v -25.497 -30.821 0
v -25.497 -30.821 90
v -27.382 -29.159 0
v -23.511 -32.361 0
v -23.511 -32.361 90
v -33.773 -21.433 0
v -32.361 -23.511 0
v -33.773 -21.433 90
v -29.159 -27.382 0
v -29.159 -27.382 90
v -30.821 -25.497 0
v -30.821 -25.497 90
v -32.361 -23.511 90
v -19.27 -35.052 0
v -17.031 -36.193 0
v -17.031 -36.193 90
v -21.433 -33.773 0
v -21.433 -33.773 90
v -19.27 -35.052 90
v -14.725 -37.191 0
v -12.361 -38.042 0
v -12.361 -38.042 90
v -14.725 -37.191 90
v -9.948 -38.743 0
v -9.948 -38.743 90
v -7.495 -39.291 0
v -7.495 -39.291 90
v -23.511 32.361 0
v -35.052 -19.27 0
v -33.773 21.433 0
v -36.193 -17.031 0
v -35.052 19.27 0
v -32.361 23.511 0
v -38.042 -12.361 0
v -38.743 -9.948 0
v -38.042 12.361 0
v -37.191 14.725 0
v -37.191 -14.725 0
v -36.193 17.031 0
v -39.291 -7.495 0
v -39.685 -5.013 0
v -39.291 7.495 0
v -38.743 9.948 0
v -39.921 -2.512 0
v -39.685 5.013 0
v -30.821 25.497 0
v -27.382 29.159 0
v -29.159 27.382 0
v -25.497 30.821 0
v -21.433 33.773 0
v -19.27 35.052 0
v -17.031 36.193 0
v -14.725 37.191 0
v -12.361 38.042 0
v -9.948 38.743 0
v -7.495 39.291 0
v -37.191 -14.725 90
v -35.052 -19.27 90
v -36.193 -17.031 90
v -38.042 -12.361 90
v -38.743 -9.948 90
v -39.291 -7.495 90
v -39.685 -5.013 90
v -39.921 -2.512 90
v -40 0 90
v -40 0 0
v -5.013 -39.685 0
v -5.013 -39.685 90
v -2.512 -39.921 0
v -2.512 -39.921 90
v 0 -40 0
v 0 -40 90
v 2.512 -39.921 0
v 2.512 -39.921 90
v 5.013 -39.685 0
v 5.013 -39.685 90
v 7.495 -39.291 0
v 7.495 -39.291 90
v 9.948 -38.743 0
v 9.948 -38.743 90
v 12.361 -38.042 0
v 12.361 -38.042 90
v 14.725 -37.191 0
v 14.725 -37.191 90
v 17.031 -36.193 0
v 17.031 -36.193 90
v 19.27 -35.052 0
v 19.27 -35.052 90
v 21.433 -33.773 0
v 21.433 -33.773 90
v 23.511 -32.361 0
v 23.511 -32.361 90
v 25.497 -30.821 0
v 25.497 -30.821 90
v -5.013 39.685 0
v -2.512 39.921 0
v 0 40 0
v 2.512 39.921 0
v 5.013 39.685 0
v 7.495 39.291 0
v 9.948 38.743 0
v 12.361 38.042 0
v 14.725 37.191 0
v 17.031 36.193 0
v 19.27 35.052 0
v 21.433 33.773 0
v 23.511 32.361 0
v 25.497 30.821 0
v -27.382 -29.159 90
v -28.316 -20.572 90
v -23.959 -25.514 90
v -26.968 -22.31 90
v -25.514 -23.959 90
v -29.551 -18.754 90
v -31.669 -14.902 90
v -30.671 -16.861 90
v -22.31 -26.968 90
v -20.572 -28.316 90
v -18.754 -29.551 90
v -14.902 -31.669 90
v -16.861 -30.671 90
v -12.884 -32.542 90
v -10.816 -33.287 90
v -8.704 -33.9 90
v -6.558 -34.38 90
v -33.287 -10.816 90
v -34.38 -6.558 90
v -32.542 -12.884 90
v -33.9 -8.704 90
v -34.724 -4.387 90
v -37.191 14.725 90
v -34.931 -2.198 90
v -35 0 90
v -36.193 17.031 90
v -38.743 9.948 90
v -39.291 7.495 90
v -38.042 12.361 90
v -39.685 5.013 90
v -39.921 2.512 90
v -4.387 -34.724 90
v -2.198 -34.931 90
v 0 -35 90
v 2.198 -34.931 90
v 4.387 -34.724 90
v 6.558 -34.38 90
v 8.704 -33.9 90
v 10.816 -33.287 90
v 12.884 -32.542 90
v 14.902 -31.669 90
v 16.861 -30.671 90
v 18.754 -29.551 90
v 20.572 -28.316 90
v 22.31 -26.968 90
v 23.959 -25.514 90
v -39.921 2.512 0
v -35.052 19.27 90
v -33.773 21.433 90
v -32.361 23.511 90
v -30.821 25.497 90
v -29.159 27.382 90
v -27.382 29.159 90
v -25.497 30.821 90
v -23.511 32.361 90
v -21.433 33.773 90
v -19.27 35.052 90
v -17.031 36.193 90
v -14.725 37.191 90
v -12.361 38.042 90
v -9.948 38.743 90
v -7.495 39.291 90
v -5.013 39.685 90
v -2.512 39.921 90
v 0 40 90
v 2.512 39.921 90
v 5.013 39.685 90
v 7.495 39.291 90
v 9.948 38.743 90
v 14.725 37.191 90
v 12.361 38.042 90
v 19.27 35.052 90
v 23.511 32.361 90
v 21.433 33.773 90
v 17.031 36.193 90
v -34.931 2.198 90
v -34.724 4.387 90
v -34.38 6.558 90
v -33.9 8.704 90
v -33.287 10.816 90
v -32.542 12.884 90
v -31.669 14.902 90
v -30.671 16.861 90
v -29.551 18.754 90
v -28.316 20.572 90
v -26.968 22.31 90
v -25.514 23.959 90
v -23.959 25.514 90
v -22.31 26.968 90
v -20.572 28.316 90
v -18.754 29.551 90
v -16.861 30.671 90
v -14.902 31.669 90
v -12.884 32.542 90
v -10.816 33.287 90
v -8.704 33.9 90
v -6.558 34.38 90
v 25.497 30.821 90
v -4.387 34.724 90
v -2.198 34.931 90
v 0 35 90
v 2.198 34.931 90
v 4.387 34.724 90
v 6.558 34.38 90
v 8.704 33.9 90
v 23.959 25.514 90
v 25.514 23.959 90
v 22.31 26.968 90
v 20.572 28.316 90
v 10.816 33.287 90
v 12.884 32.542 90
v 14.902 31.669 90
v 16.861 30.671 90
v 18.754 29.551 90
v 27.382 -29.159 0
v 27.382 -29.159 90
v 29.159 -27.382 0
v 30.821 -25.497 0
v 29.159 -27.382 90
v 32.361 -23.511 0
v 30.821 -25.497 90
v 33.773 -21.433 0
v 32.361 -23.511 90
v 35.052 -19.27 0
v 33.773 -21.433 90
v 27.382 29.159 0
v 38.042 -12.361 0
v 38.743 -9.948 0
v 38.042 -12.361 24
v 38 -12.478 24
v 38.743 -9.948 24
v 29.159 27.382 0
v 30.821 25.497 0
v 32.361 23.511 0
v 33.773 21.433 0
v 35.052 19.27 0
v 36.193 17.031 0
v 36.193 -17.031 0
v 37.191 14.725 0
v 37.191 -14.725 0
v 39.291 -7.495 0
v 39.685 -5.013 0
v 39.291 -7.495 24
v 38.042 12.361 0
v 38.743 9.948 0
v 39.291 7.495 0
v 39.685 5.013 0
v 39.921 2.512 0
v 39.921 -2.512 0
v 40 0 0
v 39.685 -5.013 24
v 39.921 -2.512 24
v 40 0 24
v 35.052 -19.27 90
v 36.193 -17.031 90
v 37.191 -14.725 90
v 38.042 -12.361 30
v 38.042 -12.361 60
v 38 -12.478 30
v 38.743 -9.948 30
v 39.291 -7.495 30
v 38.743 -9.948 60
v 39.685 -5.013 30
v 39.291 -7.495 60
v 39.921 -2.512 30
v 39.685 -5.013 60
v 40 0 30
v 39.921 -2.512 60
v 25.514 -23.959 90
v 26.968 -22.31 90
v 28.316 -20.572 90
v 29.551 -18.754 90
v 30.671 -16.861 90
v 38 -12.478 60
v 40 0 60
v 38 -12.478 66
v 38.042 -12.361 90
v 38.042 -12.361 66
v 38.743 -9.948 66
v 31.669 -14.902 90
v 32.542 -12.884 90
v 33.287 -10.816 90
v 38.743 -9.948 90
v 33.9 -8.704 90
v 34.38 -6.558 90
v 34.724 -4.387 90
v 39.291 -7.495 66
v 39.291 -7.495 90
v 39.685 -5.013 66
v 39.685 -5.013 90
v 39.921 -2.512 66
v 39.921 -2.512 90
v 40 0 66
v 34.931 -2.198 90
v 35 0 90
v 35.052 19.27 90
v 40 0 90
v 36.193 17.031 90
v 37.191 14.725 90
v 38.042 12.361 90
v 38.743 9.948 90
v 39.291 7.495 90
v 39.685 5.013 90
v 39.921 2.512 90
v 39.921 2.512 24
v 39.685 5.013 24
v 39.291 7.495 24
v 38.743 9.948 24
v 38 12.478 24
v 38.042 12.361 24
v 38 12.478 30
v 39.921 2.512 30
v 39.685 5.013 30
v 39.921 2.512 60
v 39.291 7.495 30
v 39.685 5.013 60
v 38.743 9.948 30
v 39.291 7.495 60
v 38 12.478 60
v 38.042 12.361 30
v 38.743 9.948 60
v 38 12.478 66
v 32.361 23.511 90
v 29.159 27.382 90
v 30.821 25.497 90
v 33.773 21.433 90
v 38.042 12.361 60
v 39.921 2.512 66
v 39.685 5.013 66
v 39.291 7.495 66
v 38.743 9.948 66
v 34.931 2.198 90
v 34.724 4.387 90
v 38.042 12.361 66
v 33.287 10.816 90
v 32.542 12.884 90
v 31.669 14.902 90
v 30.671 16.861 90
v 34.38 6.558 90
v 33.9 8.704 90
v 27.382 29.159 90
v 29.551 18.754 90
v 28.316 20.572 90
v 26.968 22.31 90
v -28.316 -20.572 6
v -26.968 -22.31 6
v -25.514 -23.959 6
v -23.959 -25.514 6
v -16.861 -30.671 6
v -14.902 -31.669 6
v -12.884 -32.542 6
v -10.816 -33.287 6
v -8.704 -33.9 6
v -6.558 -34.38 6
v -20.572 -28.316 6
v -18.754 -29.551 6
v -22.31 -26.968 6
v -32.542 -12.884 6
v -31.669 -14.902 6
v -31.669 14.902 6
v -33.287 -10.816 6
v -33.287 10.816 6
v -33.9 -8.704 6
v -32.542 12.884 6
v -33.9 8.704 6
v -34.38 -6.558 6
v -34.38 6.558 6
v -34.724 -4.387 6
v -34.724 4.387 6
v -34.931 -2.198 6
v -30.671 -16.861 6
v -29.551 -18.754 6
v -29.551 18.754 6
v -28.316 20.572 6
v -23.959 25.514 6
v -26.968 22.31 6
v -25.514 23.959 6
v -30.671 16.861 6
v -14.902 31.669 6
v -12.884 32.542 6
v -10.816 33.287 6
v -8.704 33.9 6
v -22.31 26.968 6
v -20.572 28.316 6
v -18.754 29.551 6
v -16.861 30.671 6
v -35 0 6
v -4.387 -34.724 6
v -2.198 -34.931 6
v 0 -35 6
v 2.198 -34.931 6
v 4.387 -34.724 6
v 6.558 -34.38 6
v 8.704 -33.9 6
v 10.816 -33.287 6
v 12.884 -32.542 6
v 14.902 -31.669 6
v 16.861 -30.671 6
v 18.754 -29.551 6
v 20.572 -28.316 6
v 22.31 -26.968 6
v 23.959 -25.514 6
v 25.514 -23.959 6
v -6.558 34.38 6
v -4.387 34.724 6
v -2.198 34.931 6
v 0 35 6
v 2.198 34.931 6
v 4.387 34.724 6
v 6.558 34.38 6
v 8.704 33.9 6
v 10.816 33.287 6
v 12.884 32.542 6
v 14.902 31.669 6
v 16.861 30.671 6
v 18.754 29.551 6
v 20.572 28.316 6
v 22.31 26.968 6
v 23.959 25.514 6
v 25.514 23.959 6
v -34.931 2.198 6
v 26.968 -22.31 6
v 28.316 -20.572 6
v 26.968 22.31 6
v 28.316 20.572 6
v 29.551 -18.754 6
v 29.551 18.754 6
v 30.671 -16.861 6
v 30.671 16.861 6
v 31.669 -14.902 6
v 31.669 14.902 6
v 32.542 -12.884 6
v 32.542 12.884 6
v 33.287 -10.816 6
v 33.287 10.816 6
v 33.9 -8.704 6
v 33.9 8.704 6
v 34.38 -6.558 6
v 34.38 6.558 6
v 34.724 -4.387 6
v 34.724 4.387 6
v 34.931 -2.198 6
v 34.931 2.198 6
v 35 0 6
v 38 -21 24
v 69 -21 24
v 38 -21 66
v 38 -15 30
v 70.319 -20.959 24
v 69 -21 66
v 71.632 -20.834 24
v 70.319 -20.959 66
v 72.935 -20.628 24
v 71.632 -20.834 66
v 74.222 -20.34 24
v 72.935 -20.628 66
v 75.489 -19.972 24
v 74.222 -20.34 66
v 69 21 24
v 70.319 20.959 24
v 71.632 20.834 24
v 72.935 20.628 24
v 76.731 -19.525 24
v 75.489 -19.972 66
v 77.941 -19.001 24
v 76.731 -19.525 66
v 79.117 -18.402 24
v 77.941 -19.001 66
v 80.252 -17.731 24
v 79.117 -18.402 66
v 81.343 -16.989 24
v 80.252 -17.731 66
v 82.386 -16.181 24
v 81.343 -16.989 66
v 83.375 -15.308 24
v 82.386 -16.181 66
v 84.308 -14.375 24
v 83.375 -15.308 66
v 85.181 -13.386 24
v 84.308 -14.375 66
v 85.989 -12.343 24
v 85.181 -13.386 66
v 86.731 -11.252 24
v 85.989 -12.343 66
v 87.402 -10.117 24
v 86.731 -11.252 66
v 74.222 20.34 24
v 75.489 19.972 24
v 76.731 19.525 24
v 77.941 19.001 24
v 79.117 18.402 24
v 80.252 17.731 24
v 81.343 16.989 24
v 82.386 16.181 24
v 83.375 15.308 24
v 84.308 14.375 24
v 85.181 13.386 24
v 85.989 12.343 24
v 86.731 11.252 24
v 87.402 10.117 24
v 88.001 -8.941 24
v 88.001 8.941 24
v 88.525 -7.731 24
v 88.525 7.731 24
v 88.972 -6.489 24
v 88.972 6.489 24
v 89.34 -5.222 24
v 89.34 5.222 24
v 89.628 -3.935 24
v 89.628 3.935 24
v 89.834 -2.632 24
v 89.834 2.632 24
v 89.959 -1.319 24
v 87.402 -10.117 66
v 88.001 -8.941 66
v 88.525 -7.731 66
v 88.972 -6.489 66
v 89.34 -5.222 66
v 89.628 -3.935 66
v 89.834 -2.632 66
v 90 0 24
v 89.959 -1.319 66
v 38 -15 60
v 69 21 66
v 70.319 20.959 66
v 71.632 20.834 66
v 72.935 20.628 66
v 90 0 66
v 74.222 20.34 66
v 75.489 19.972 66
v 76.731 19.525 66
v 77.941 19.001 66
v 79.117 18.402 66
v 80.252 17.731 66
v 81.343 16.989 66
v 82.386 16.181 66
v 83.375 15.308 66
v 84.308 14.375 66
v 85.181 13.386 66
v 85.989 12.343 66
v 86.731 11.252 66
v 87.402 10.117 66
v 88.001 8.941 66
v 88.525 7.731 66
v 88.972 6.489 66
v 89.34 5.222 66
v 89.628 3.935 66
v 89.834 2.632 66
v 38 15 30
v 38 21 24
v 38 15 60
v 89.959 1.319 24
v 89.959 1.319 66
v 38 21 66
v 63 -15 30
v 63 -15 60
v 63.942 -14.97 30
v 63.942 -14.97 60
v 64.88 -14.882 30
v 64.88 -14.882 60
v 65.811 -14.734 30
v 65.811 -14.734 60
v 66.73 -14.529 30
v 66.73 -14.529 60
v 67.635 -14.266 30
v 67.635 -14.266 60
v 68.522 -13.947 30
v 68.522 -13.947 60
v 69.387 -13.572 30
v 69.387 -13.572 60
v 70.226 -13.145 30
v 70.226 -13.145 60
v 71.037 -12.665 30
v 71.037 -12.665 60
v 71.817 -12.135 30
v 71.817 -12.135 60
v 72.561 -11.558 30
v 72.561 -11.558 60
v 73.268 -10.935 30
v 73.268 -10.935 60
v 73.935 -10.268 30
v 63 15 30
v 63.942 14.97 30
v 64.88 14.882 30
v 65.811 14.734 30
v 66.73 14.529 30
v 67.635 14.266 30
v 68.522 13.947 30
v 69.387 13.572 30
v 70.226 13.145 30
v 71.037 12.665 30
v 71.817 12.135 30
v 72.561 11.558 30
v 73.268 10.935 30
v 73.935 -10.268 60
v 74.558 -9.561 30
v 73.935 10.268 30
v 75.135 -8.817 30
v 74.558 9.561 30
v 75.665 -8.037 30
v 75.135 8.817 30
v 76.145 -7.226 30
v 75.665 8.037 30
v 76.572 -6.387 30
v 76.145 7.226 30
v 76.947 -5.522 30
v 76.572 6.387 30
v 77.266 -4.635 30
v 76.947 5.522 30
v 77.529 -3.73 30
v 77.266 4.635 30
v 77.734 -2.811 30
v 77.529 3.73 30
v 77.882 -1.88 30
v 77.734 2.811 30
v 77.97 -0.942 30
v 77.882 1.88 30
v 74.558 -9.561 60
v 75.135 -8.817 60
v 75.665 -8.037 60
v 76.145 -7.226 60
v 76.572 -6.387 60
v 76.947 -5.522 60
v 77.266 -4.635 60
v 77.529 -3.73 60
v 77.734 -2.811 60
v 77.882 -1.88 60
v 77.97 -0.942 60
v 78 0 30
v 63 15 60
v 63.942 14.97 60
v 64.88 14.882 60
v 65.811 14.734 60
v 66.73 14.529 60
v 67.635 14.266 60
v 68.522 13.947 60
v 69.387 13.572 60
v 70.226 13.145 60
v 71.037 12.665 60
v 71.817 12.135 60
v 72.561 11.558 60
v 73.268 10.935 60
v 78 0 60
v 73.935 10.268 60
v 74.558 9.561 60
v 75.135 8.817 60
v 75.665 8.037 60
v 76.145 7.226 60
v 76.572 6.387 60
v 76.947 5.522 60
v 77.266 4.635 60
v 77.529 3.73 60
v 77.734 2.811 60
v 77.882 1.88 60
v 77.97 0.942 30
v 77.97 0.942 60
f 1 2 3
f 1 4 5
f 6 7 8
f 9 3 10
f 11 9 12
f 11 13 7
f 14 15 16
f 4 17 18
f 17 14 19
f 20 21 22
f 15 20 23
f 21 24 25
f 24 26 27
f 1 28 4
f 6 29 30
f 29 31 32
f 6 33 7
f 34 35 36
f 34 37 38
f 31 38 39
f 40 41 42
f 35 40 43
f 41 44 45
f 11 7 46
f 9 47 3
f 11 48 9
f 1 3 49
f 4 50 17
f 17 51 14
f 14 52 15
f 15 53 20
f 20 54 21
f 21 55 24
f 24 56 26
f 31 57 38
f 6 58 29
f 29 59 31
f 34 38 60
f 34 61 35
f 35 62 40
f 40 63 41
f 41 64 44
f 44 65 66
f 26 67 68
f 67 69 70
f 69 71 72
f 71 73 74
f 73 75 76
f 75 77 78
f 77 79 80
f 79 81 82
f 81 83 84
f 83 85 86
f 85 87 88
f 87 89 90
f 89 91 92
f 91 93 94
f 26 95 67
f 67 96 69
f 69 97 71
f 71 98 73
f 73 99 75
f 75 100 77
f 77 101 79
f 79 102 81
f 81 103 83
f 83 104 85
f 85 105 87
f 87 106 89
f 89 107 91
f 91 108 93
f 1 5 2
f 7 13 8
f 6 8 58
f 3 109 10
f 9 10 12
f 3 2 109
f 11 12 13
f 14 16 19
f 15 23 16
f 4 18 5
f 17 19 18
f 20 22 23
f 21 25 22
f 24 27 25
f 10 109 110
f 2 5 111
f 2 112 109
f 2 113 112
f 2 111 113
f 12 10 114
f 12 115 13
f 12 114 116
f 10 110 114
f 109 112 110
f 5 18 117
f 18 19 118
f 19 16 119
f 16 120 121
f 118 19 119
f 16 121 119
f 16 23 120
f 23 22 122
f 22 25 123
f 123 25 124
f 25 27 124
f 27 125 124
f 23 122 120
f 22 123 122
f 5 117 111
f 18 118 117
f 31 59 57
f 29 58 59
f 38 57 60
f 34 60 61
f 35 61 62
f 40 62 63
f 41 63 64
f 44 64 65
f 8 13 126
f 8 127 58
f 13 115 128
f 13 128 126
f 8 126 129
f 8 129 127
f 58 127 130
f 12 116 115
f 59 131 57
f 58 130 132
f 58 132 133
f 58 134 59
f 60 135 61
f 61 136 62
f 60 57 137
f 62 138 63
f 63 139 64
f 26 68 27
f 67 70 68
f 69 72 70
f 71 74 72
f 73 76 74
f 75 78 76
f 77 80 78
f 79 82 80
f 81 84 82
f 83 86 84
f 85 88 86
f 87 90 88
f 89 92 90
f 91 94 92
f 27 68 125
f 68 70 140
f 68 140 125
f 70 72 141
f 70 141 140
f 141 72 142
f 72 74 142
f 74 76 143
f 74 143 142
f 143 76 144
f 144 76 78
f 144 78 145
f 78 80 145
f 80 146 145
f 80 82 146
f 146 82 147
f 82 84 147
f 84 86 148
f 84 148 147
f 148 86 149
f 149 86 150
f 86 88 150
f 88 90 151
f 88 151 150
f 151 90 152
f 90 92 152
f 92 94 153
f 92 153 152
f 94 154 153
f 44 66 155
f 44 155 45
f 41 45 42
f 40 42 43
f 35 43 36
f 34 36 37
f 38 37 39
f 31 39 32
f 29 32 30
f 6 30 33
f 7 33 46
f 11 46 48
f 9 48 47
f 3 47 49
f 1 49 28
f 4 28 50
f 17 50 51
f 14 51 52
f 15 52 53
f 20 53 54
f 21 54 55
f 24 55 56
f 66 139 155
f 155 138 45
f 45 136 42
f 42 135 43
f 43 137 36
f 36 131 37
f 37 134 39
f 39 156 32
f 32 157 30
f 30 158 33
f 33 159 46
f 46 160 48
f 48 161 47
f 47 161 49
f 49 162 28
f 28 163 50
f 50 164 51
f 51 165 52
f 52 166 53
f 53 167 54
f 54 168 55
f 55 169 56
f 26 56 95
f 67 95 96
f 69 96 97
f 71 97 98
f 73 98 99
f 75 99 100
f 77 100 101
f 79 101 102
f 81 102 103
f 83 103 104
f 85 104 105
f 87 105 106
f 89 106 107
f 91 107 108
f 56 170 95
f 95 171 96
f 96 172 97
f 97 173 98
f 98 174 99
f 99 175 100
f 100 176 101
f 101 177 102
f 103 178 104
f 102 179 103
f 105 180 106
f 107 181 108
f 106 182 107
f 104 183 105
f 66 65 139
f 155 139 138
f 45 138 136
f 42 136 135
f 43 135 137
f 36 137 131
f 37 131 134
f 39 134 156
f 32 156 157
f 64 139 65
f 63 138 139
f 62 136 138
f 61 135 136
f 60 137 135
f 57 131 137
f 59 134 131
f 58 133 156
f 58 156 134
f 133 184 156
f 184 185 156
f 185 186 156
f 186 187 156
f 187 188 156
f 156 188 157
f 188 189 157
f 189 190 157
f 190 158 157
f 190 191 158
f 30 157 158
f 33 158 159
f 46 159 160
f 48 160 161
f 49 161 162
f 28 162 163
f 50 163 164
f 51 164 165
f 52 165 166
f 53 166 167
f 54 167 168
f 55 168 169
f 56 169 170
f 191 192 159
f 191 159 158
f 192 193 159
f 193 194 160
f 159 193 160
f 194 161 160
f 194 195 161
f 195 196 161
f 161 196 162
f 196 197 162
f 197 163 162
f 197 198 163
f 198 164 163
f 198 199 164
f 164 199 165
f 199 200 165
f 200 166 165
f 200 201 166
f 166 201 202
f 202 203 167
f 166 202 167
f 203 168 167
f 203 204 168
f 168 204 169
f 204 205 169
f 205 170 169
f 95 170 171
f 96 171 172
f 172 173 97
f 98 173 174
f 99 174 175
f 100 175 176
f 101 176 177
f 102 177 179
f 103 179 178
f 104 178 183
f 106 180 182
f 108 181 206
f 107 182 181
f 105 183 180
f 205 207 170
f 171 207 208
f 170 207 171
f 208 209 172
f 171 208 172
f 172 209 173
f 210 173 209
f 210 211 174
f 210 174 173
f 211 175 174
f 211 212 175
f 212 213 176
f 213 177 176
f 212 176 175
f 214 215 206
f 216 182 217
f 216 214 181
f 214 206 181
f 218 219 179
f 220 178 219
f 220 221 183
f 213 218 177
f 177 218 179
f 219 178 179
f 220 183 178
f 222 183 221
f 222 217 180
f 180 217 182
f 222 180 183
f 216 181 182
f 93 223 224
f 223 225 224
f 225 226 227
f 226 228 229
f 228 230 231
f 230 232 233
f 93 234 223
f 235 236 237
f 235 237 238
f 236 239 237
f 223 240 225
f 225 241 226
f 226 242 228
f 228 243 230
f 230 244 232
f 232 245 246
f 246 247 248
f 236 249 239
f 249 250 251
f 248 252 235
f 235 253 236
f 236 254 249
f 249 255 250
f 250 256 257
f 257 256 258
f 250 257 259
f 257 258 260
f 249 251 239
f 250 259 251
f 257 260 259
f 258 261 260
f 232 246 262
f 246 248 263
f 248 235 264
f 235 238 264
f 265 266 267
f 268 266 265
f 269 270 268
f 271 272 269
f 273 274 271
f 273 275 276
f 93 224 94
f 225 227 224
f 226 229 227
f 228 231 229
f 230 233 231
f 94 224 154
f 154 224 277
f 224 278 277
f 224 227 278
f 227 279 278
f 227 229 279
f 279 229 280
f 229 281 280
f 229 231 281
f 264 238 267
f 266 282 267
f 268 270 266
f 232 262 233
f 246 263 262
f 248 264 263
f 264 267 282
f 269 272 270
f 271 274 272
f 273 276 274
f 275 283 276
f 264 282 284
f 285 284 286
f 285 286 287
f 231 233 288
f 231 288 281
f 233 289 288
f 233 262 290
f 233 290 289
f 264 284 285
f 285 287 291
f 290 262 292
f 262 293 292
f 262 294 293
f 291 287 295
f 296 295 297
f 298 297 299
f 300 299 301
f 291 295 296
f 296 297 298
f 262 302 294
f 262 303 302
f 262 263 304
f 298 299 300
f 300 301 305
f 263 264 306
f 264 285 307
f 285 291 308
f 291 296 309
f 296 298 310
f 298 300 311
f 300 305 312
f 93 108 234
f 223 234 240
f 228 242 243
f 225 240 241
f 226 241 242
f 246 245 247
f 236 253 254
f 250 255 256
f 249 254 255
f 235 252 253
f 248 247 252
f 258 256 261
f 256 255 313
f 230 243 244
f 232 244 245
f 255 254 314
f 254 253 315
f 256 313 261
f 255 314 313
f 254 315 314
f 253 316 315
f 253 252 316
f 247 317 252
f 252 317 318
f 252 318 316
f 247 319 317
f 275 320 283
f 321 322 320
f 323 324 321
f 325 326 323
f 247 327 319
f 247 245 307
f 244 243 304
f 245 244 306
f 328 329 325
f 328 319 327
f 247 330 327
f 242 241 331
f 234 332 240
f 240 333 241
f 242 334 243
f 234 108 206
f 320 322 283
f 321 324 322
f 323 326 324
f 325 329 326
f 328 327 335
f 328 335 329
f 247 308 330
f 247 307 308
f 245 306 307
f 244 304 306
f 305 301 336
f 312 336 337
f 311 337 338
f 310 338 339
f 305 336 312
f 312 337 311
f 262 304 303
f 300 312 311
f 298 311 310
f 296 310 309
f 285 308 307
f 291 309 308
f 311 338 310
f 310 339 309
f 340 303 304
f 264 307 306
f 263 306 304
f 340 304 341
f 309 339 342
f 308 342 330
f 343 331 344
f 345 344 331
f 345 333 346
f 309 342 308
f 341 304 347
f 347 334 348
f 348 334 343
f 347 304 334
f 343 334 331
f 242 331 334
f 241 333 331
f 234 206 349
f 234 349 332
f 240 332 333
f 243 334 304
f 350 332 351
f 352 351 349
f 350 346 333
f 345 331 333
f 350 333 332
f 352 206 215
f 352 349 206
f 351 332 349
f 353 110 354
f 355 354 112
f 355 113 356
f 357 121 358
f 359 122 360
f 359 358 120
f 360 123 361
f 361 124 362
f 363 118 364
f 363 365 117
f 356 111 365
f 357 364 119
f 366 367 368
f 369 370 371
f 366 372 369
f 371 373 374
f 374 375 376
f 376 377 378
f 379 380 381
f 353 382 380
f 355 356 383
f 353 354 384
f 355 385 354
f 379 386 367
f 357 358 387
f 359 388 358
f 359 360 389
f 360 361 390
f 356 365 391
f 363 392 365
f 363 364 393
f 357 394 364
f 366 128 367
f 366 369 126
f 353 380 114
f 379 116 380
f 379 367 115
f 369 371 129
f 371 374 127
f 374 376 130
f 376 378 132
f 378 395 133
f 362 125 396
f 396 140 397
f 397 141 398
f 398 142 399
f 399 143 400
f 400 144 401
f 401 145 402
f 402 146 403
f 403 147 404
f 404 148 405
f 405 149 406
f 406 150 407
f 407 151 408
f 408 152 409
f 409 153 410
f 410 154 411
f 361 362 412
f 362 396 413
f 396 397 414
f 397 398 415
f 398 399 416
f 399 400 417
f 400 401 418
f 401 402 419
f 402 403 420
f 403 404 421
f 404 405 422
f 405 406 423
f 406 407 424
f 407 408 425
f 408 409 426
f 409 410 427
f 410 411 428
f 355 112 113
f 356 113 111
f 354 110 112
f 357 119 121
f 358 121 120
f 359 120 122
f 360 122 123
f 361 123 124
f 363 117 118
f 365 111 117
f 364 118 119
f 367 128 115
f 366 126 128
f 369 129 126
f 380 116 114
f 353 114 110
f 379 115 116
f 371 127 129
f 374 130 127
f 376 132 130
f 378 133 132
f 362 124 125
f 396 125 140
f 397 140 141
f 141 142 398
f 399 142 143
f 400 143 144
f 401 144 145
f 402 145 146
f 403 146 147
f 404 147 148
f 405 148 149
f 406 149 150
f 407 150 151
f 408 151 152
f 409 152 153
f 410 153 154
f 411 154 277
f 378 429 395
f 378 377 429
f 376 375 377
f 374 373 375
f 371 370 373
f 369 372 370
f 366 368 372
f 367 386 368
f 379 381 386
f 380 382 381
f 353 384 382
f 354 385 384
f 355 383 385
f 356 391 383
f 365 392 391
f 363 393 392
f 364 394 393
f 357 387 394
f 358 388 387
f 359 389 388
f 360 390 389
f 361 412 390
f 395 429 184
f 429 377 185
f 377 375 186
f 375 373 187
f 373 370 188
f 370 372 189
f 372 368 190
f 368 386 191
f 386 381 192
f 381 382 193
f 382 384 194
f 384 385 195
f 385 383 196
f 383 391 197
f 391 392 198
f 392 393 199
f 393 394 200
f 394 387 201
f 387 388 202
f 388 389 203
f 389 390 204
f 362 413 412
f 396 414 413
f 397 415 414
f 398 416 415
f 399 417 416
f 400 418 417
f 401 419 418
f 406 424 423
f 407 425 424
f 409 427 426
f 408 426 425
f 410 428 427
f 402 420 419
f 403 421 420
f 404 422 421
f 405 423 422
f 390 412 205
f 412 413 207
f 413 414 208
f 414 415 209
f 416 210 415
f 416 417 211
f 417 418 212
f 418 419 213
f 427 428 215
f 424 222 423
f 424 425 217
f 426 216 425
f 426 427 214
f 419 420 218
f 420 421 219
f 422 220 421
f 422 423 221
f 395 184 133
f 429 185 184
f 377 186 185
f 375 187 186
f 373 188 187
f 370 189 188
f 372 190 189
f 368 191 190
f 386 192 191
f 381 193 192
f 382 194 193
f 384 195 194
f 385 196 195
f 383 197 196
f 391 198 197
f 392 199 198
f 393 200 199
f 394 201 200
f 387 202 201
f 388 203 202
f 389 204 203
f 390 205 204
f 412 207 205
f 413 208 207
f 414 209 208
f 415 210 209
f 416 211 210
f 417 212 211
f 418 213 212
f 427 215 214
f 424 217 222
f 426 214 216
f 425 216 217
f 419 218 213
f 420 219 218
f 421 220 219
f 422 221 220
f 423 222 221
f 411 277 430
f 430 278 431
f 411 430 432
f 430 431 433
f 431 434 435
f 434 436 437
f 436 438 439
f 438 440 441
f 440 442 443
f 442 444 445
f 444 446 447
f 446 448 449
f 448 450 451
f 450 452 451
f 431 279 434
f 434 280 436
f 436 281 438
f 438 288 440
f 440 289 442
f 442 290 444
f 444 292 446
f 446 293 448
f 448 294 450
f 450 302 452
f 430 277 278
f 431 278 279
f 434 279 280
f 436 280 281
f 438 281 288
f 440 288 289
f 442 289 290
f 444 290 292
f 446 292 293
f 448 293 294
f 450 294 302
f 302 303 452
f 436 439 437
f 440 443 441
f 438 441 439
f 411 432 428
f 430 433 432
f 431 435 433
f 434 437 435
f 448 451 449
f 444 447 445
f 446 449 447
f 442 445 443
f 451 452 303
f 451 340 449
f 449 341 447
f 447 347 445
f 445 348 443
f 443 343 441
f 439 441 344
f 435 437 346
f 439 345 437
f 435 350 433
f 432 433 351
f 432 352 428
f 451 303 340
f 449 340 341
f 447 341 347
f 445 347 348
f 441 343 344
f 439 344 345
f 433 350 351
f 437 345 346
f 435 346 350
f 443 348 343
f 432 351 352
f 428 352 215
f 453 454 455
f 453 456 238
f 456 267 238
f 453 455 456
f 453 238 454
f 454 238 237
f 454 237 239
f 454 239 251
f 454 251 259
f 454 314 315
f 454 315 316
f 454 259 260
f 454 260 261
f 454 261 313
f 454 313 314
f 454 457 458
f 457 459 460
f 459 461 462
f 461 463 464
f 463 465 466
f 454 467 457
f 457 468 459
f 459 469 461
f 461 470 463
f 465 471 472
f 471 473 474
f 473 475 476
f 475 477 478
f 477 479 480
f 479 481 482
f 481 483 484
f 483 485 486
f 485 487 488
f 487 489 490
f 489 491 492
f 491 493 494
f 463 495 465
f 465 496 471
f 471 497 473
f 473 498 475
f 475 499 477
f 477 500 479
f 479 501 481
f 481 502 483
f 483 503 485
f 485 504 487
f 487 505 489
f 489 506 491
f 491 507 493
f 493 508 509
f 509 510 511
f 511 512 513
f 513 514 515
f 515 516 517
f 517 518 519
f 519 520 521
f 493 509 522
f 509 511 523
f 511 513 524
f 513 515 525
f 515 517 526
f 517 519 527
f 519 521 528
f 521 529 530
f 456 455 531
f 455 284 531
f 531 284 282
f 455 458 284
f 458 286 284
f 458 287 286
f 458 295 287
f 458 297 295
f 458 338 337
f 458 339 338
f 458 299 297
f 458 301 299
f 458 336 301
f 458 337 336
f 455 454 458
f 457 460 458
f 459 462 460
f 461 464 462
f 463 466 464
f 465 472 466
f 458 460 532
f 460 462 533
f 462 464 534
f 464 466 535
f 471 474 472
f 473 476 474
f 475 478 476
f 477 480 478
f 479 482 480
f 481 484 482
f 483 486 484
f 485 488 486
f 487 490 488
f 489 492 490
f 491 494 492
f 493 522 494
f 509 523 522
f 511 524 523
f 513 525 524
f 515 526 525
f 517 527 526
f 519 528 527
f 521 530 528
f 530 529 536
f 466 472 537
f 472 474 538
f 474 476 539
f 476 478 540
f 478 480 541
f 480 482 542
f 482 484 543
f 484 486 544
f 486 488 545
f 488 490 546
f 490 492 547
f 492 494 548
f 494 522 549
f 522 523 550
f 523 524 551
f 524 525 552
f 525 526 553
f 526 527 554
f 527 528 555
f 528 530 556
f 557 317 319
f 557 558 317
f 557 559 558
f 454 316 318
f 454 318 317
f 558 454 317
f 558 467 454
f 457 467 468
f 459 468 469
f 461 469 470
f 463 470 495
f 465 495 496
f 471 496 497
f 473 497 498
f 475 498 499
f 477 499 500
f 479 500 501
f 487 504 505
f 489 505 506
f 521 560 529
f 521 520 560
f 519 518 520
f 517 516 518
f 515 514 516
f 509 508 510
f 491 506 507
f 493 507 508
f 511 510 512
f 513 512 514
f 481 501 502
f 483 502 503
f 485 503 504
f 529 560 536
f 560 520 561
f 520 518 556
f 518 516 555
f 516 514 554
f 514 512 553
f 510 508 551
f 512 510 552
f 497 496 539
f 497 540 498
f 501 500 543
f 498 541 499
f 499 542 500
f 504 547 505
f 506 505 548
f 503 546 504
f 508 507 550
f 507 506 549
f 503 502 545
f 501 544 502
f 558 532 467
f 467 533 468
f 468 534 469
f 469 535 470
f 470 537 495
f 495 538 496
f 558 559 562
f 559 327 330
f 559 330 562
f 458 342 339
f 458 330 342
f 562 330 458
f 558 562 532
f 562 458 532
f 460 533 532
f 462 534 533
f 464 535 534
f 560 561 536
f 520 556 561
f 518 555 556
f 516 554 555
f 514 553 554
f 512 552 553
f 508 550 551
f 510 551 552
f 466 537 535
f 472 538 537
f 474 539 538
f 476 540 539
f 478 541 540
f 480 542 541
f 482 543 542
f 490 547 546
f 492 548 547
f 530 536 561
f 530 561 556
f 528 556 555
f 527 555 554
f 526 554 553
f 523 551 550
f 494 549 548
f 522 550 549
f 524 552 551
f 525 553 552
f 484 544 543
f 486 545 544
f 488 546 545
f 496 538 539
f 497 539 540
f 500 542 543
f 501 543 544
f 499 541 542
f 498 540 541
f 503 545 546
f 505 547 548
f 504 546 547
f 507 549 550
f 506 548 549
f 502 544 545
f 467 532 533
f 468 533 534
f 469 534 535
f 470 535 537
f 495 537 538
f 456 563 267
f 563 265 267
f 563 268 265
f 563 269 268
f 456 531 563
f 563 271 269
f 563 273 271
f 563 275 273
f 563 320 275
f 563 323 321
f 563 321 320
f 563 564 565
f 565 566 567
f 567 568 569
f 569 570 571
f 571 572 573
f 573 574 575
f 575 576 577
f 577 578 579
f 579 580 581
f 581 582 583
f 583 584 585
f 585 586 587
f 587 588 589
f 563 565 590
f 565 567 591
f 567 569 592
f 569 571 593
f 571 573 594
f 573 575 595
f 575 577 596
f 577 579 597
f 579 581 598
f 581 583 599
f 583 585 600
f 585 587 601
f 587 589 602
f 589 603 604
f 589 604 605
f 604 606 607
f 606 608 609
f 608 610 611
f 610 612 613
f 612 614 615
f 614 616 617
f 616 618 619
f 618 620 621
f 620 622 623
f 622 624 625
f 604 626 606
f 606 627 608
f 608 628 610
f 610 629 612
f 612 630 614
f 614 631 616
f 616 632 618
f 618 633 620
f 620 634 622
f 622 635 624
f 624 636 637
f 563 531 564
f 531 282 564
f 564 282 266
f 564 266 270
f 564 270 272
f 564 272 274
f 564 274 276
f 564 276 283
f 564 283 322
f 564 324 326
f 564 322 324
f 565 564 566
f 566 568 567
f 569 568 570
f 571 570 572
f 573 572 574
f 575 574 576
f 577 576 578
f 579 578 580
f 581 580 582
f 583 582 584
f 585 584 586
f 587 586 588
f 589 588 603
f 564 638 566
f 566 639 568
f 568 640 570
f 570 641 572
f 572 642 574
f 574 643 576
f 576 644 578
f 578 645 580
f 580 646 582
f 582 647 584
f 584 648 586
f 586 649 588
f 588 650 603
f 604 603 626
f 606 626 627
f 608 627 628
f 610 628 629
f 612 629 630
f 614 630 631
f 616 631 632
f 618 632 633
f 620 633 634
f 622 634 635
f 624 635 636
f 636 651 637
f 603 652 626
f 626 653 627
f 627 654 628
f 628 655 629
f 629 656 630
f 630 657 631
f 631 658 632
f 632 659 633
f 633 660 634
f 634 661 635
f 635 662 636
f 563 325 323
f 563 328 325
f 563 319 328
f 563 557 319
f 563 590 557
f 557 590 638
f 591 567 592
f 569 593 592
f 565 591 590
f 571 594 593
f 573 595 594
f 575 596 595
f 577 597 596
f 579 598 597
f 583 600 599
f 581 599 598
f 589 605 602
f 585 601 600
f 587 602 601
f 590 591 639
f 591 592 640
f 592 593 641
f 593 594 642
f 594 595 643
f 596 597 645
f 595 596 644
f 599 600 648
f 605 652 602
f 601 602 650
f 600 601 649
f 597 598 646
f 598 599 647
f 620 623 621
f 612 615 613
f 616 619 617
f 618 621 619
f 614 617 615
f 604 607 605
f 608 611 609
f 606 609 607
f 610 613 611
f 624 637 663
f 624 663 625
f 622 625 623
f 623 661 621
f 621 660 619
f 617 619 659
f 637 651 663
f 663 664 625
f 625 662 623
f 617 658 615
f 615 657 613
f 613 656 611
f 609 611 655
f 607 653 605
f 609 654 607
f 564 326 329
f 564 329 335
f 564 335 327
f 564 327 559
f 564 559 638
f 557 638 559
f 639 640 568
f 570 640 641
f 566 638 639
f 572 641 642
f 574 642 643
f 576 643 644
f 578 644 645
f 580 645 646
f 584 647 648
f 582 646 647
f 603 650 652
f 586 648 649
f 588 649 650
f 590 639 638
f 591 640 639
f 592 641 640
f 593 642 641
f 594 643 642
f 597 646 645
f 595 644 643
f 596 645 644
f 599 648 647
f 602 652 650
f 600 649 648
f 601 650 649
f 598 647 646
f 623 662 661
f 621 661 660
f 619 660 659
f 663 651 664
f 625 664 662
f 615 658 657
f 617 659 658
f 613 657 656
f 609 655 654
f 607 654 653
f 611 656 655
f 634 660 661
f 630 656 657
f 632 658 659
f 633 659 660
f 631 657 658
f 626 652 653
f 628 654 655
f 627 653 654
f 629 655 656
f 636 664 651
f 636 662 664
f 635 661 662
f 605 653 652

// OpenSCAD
$fn = 100;

outer_d = 80;
inner_d = 70;
height = 90;
bottom_thk = 6;

handle_inner_h = 30;
handle_inner_w = 25;
handle_thk = 6;

module body() {
    difference() {
        cylinder(d = outer_d, h = height);
        translate([0, 0, bottom_thk])
            cylinder(d = inner_d, h = height);
    }
}

module handle() {
    // D-shape handle on +X side, centered vertically
    outer_h = handle_inner_h + 2 * handle_thk;
    outer_w = handle_inner_w + handle_thk; // straight side at body, semicircle outside
    
    cz = height / 2;
    // Place so straight side is at x = body surface (slightly inside for union)
    x0 = outer_d/2 - 2; // overlap into body for manifold union
    
    translate([x0, 0, cz])
        difference() {
            // outer D: rectangle + semicircle on +x side
            hull() {
                translate([0, -outer_h/2 + outer_h/2, -outer_h/2])
                    cube([0.01, outer_h, outer_h], center = false)
                    ;
            }
            // simpler approach below
        }
}

// Simpler handle implementation
module d_handle() {
    outer_h = handle_inner_h + 2 * handle_thk;
    cz = height / 2;
    x0 = outer_d/2 - 2;
    
    translate([x0, 0, cz - outer_h/2])
    difference() {
        // outer D shape (extruded)
        linear_extrude(height = outer_h)
            hull() {
                translate([0, -outer_h/2, 0])
                    square([0.1, outer_h]);
                translate([handle_inner_w + handle_thk, 0, 0])
                    circle(d = outer_h);
            }
        // inner hole
        translate([0, 0, handle_thk])
            linear_extrude(height = handle_inner_h)
                hull() {
                    translate([0, -handle_inner_h/2, 0])
                        square([0.1, handle_inner_h]);
                    translate([handle_inner_w, 0, 0])
                        circle(d = handle_inner_h);
                }
    }
}

union() {
    body();
    d_handle();
}
